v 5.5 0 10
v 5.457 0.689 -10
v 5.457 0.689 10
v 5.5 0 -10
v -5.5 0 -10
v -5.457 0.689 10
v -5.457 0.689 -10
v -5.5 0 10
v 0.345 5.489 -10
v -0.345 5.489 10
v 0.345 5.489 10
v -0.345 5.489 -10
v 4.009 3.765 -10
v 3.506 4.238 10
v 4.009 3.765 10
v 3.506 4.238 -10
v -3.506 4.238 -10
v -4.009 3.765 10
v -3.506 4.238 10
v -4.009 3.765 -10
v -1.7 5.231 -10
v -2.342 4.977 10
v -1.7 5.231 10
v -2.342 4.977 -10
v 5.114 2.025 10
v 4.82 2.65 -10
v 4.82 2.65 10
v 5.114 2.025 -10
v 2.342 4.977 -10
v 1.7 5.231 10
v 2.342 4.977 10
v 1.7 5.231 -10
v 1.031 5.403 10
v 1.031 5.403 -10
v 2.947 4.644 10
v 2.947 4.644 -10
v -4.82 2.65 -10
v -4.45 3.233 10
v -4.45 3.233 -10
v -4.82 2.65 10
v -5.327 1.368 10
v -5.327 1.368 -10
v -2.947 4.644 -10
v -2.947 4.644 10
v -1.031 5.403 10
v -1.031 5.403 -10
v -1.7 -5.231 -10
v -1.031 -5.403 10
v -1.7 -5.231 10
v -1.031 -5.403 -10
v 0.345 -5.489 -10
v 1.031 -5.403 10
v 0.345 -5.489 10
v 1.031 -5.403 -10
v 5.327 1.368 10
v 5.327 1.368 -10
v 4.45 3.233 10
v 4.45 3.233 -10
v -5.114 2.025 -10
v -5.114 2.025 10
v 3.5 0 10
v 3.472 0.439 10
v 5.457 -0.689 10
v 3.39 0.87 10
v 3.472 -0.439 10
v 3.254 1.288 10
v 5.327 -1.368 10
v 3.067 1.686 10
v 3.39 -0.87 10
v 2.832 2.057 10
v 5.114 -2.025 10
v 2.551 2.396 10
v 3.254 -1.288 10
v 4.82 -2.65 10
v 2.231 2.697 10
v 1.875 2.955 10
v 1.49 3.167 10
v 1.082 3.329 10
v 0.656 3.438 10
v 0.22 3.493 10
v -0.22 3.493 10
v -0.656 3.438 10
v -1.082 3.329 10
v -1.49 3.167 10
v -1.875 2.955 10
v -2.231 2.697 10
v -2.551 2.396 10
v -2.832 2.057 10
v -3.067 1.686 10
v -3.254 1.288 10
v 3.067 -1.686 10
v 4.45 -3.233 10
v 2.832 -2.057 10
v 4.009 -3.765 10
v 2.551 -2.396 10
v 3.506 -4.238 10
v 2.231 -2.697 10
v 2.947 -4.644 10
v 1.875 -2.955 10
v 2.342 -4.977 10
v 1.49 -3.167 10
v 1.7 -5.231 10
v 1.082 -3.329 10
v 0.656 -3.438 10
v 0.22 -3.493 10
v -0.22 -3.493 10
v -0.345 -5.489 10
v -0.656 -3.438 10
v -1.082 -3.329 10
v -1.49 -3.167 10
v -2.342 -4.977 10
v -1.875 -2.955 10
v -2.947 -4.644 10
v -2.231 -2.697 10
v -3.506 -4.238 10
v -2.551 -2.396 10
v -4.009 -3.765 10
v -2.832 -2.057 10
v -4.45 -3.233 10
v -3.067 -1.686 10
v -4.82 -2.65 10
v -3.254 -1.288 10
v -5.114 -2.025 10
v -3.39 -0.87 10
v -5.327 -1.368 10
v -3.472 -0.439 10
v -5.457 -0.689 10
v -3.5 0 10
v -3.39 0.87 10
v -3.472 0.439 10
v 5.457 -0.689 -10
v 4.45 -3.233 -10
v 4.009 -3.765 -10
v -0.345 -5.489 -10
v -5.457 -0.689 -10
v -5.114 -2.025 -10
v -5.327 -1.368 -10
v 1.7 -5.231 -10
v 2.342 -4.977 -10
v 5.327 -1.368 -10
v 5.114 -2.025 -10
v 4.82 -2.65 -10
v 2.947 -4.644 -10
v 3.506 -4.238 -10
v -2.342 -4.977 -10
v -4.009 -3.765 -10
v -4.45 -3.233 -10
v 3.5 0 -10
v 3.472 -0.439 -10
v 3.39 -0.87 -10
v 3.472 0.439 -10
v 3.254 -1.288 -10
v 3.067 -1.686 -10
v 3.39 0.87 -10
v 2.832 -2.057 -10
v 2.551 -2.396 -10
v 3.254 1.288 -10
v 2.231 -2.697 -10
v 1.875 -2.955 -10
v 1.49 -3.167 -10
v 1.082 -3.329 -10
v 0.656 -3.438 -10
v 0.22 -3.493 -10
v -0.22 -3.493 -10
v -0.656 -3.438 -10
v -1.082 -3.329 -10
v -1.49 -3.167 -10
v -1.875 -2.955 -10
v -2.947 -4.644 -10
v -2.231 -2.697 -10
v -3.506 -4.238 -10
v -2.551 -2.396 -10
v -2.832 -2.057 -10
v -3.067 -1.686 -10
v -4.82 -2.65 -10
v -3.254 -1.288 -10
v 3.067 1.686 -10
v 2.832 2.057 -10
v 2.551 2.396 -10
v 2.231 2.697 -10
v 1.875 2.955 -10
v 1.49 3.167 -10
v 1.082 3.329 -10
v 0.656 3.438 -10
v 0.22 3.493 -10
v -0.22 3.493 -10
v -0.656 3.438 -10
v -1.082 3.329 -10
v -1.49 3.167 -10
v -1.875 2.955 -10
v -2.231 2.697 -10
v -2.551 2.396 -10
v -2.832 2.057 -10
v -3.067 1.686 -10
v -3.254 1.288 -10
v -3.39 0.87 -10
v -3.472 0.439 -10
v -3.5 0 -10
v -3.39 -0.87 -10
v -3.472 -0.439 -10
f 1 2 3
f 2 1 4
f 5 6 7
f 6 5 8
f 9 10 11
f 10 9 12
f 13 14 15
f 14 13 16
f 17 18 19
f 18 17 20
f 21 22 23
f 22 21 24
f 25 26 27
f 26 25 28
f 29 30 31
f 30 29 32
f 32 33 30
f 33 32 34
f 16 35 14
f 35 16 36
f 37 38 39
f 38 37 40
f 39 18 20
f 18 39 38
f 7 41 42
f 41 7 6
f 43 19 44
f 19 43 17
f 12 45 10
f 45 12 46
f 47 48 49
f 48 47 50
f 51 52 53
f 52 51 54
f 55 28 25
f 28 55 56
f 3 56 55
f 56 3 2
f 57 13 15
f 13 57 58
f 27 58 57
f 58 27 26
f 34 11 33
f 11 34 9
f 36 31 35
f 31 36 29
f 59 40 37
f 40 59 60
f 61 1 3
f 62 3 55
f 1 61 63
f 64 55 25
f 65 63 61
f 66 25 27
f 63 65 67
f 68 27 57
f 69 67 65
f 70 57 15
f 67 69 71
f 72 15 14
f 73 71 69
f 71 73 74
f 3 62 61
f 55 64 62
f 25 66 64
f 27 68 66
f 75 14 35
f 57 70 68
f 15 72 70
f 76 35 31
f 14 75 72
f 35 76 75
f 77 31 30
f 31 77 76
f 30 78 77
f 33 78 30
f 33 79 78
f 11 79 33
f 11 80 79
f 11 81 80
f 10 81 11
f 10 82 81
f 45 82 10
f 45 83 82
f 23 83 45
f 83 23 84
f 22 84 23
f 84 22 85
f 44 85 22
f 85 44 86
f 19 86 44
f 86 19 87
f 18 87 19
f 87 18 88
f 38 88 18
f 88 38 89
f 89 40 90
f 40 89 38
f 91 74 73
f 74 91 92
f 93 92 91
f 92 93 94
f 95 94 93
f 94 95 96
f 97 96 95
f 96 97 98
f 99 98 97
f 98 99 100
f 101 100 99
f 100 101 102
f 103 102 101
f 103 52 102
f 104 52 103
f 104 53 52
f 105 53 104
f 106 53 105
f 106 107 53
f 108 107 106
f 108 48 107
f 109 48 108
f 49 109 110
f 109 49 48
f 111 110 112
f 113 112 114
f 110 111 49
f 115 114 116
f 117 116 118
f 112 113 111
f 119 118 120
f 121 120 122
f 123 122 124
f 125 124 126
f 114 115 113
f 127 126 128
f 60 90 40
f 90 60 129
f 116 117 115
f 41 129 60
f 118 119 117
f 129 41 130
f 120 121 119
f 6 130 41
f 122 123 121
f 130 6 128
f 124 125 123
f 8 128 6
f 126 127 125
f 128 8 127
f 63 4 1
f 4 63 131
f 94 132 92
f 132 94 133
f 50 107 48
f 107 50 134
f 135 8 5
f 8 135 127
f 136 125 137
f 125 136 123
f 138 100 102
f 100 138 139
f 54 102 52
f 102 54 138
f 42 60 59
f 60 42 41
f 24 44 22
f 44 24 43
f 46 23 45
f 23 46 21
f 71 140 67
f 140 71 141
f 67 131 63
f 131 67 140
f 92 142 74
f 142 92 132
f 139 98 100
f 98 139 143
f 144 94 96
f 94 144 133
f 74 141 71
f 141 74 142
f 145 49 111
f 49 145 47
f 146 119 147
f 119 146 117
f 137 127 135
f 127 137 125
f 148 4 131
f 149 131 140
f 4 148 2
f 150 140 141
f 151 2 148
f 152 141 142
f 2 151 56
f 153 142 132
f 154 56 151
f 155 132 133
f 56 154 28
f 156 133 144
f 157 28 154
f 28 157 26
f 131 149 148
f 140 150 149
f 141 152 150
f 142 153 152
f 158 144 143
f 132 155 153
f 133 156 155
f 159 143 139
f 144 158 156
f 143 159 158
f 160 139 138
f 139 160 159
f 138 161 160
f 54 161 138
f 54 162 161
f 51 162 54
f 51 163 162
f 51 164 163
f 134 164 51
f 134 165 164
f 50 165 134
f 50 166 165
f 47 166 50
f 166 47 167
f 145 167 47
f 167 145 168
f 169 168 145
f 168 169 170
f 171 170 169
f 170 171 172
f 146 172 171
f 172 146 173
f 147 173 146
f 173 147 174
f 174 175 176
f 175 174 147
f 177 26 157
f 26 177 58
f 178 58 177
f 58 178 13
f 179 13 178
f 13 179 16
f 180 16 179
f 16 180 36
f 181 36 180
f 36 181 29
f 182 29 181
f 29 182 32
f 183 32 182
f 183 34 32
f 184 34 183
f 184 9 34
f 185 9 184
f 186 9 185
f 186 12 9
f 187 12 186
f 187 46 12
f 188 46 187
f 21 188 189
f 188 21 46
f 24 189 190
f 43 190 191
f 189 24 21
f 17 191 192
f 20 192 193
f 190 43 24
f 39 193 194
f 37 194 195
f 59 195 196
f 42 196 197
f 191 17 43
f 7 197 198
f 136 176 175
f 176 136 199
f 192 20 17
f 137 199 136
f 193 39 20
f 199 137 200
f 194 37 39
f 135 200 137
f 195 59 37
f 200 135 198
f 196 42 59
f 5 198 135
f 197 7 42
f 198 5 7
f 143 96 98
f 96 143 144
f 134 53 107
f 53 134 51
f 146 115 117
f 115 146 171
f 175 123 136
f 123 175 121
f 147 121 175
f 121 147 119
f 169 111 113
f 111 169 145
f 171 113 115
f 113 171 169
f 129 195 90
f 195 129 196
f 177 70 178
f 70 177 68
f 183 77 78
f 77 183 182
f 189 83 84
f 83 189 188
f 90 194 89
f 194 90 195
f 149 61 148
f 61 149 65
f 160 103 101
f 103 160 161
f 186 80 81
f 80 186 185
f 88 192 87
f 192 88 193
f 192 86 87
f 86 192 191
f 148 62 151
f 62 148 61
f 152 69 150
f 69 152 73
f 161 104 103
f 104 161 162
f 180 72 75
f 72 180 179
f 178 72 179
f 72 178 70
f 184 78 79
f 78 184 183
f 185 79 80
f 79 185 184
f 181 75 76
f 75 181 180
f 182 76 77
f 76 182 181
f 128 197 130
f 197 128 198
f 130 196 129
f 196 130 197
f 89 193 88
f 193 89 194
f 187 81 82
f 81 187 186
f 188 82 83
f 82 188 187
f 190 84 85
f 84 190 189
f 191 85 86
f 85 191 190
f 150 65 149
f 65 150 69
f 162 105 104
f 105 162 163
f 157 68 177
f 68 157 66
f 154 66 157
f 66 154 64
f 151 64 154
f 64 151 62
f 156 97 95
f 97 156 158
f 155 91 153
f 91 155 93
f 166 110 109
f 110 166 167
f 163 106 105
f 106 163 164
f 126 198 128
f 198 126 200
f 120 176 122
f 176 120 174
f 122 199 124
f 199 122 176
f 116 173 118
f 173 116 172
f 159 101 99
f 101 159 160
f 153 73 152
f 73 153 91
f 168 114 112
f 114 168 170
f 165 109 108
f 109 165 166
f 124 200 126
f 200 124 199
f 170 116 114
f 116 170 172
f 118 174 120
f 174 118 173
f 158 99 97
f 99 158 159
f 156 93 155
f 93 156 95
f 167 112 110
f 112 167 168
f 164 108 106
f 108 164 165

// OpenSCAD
$fn = 50;


difference() {
	union() {
		translate(v = [0, 0, -10.0000000000]) {
			cylinder(h = 20, r = 5.5000000000);
		}
	}
	union() {
		translate(v = [0, 0, -100.0000000000]) {
			cylinder(h = 200, r = 3.5000000000);
		}
	}
}
